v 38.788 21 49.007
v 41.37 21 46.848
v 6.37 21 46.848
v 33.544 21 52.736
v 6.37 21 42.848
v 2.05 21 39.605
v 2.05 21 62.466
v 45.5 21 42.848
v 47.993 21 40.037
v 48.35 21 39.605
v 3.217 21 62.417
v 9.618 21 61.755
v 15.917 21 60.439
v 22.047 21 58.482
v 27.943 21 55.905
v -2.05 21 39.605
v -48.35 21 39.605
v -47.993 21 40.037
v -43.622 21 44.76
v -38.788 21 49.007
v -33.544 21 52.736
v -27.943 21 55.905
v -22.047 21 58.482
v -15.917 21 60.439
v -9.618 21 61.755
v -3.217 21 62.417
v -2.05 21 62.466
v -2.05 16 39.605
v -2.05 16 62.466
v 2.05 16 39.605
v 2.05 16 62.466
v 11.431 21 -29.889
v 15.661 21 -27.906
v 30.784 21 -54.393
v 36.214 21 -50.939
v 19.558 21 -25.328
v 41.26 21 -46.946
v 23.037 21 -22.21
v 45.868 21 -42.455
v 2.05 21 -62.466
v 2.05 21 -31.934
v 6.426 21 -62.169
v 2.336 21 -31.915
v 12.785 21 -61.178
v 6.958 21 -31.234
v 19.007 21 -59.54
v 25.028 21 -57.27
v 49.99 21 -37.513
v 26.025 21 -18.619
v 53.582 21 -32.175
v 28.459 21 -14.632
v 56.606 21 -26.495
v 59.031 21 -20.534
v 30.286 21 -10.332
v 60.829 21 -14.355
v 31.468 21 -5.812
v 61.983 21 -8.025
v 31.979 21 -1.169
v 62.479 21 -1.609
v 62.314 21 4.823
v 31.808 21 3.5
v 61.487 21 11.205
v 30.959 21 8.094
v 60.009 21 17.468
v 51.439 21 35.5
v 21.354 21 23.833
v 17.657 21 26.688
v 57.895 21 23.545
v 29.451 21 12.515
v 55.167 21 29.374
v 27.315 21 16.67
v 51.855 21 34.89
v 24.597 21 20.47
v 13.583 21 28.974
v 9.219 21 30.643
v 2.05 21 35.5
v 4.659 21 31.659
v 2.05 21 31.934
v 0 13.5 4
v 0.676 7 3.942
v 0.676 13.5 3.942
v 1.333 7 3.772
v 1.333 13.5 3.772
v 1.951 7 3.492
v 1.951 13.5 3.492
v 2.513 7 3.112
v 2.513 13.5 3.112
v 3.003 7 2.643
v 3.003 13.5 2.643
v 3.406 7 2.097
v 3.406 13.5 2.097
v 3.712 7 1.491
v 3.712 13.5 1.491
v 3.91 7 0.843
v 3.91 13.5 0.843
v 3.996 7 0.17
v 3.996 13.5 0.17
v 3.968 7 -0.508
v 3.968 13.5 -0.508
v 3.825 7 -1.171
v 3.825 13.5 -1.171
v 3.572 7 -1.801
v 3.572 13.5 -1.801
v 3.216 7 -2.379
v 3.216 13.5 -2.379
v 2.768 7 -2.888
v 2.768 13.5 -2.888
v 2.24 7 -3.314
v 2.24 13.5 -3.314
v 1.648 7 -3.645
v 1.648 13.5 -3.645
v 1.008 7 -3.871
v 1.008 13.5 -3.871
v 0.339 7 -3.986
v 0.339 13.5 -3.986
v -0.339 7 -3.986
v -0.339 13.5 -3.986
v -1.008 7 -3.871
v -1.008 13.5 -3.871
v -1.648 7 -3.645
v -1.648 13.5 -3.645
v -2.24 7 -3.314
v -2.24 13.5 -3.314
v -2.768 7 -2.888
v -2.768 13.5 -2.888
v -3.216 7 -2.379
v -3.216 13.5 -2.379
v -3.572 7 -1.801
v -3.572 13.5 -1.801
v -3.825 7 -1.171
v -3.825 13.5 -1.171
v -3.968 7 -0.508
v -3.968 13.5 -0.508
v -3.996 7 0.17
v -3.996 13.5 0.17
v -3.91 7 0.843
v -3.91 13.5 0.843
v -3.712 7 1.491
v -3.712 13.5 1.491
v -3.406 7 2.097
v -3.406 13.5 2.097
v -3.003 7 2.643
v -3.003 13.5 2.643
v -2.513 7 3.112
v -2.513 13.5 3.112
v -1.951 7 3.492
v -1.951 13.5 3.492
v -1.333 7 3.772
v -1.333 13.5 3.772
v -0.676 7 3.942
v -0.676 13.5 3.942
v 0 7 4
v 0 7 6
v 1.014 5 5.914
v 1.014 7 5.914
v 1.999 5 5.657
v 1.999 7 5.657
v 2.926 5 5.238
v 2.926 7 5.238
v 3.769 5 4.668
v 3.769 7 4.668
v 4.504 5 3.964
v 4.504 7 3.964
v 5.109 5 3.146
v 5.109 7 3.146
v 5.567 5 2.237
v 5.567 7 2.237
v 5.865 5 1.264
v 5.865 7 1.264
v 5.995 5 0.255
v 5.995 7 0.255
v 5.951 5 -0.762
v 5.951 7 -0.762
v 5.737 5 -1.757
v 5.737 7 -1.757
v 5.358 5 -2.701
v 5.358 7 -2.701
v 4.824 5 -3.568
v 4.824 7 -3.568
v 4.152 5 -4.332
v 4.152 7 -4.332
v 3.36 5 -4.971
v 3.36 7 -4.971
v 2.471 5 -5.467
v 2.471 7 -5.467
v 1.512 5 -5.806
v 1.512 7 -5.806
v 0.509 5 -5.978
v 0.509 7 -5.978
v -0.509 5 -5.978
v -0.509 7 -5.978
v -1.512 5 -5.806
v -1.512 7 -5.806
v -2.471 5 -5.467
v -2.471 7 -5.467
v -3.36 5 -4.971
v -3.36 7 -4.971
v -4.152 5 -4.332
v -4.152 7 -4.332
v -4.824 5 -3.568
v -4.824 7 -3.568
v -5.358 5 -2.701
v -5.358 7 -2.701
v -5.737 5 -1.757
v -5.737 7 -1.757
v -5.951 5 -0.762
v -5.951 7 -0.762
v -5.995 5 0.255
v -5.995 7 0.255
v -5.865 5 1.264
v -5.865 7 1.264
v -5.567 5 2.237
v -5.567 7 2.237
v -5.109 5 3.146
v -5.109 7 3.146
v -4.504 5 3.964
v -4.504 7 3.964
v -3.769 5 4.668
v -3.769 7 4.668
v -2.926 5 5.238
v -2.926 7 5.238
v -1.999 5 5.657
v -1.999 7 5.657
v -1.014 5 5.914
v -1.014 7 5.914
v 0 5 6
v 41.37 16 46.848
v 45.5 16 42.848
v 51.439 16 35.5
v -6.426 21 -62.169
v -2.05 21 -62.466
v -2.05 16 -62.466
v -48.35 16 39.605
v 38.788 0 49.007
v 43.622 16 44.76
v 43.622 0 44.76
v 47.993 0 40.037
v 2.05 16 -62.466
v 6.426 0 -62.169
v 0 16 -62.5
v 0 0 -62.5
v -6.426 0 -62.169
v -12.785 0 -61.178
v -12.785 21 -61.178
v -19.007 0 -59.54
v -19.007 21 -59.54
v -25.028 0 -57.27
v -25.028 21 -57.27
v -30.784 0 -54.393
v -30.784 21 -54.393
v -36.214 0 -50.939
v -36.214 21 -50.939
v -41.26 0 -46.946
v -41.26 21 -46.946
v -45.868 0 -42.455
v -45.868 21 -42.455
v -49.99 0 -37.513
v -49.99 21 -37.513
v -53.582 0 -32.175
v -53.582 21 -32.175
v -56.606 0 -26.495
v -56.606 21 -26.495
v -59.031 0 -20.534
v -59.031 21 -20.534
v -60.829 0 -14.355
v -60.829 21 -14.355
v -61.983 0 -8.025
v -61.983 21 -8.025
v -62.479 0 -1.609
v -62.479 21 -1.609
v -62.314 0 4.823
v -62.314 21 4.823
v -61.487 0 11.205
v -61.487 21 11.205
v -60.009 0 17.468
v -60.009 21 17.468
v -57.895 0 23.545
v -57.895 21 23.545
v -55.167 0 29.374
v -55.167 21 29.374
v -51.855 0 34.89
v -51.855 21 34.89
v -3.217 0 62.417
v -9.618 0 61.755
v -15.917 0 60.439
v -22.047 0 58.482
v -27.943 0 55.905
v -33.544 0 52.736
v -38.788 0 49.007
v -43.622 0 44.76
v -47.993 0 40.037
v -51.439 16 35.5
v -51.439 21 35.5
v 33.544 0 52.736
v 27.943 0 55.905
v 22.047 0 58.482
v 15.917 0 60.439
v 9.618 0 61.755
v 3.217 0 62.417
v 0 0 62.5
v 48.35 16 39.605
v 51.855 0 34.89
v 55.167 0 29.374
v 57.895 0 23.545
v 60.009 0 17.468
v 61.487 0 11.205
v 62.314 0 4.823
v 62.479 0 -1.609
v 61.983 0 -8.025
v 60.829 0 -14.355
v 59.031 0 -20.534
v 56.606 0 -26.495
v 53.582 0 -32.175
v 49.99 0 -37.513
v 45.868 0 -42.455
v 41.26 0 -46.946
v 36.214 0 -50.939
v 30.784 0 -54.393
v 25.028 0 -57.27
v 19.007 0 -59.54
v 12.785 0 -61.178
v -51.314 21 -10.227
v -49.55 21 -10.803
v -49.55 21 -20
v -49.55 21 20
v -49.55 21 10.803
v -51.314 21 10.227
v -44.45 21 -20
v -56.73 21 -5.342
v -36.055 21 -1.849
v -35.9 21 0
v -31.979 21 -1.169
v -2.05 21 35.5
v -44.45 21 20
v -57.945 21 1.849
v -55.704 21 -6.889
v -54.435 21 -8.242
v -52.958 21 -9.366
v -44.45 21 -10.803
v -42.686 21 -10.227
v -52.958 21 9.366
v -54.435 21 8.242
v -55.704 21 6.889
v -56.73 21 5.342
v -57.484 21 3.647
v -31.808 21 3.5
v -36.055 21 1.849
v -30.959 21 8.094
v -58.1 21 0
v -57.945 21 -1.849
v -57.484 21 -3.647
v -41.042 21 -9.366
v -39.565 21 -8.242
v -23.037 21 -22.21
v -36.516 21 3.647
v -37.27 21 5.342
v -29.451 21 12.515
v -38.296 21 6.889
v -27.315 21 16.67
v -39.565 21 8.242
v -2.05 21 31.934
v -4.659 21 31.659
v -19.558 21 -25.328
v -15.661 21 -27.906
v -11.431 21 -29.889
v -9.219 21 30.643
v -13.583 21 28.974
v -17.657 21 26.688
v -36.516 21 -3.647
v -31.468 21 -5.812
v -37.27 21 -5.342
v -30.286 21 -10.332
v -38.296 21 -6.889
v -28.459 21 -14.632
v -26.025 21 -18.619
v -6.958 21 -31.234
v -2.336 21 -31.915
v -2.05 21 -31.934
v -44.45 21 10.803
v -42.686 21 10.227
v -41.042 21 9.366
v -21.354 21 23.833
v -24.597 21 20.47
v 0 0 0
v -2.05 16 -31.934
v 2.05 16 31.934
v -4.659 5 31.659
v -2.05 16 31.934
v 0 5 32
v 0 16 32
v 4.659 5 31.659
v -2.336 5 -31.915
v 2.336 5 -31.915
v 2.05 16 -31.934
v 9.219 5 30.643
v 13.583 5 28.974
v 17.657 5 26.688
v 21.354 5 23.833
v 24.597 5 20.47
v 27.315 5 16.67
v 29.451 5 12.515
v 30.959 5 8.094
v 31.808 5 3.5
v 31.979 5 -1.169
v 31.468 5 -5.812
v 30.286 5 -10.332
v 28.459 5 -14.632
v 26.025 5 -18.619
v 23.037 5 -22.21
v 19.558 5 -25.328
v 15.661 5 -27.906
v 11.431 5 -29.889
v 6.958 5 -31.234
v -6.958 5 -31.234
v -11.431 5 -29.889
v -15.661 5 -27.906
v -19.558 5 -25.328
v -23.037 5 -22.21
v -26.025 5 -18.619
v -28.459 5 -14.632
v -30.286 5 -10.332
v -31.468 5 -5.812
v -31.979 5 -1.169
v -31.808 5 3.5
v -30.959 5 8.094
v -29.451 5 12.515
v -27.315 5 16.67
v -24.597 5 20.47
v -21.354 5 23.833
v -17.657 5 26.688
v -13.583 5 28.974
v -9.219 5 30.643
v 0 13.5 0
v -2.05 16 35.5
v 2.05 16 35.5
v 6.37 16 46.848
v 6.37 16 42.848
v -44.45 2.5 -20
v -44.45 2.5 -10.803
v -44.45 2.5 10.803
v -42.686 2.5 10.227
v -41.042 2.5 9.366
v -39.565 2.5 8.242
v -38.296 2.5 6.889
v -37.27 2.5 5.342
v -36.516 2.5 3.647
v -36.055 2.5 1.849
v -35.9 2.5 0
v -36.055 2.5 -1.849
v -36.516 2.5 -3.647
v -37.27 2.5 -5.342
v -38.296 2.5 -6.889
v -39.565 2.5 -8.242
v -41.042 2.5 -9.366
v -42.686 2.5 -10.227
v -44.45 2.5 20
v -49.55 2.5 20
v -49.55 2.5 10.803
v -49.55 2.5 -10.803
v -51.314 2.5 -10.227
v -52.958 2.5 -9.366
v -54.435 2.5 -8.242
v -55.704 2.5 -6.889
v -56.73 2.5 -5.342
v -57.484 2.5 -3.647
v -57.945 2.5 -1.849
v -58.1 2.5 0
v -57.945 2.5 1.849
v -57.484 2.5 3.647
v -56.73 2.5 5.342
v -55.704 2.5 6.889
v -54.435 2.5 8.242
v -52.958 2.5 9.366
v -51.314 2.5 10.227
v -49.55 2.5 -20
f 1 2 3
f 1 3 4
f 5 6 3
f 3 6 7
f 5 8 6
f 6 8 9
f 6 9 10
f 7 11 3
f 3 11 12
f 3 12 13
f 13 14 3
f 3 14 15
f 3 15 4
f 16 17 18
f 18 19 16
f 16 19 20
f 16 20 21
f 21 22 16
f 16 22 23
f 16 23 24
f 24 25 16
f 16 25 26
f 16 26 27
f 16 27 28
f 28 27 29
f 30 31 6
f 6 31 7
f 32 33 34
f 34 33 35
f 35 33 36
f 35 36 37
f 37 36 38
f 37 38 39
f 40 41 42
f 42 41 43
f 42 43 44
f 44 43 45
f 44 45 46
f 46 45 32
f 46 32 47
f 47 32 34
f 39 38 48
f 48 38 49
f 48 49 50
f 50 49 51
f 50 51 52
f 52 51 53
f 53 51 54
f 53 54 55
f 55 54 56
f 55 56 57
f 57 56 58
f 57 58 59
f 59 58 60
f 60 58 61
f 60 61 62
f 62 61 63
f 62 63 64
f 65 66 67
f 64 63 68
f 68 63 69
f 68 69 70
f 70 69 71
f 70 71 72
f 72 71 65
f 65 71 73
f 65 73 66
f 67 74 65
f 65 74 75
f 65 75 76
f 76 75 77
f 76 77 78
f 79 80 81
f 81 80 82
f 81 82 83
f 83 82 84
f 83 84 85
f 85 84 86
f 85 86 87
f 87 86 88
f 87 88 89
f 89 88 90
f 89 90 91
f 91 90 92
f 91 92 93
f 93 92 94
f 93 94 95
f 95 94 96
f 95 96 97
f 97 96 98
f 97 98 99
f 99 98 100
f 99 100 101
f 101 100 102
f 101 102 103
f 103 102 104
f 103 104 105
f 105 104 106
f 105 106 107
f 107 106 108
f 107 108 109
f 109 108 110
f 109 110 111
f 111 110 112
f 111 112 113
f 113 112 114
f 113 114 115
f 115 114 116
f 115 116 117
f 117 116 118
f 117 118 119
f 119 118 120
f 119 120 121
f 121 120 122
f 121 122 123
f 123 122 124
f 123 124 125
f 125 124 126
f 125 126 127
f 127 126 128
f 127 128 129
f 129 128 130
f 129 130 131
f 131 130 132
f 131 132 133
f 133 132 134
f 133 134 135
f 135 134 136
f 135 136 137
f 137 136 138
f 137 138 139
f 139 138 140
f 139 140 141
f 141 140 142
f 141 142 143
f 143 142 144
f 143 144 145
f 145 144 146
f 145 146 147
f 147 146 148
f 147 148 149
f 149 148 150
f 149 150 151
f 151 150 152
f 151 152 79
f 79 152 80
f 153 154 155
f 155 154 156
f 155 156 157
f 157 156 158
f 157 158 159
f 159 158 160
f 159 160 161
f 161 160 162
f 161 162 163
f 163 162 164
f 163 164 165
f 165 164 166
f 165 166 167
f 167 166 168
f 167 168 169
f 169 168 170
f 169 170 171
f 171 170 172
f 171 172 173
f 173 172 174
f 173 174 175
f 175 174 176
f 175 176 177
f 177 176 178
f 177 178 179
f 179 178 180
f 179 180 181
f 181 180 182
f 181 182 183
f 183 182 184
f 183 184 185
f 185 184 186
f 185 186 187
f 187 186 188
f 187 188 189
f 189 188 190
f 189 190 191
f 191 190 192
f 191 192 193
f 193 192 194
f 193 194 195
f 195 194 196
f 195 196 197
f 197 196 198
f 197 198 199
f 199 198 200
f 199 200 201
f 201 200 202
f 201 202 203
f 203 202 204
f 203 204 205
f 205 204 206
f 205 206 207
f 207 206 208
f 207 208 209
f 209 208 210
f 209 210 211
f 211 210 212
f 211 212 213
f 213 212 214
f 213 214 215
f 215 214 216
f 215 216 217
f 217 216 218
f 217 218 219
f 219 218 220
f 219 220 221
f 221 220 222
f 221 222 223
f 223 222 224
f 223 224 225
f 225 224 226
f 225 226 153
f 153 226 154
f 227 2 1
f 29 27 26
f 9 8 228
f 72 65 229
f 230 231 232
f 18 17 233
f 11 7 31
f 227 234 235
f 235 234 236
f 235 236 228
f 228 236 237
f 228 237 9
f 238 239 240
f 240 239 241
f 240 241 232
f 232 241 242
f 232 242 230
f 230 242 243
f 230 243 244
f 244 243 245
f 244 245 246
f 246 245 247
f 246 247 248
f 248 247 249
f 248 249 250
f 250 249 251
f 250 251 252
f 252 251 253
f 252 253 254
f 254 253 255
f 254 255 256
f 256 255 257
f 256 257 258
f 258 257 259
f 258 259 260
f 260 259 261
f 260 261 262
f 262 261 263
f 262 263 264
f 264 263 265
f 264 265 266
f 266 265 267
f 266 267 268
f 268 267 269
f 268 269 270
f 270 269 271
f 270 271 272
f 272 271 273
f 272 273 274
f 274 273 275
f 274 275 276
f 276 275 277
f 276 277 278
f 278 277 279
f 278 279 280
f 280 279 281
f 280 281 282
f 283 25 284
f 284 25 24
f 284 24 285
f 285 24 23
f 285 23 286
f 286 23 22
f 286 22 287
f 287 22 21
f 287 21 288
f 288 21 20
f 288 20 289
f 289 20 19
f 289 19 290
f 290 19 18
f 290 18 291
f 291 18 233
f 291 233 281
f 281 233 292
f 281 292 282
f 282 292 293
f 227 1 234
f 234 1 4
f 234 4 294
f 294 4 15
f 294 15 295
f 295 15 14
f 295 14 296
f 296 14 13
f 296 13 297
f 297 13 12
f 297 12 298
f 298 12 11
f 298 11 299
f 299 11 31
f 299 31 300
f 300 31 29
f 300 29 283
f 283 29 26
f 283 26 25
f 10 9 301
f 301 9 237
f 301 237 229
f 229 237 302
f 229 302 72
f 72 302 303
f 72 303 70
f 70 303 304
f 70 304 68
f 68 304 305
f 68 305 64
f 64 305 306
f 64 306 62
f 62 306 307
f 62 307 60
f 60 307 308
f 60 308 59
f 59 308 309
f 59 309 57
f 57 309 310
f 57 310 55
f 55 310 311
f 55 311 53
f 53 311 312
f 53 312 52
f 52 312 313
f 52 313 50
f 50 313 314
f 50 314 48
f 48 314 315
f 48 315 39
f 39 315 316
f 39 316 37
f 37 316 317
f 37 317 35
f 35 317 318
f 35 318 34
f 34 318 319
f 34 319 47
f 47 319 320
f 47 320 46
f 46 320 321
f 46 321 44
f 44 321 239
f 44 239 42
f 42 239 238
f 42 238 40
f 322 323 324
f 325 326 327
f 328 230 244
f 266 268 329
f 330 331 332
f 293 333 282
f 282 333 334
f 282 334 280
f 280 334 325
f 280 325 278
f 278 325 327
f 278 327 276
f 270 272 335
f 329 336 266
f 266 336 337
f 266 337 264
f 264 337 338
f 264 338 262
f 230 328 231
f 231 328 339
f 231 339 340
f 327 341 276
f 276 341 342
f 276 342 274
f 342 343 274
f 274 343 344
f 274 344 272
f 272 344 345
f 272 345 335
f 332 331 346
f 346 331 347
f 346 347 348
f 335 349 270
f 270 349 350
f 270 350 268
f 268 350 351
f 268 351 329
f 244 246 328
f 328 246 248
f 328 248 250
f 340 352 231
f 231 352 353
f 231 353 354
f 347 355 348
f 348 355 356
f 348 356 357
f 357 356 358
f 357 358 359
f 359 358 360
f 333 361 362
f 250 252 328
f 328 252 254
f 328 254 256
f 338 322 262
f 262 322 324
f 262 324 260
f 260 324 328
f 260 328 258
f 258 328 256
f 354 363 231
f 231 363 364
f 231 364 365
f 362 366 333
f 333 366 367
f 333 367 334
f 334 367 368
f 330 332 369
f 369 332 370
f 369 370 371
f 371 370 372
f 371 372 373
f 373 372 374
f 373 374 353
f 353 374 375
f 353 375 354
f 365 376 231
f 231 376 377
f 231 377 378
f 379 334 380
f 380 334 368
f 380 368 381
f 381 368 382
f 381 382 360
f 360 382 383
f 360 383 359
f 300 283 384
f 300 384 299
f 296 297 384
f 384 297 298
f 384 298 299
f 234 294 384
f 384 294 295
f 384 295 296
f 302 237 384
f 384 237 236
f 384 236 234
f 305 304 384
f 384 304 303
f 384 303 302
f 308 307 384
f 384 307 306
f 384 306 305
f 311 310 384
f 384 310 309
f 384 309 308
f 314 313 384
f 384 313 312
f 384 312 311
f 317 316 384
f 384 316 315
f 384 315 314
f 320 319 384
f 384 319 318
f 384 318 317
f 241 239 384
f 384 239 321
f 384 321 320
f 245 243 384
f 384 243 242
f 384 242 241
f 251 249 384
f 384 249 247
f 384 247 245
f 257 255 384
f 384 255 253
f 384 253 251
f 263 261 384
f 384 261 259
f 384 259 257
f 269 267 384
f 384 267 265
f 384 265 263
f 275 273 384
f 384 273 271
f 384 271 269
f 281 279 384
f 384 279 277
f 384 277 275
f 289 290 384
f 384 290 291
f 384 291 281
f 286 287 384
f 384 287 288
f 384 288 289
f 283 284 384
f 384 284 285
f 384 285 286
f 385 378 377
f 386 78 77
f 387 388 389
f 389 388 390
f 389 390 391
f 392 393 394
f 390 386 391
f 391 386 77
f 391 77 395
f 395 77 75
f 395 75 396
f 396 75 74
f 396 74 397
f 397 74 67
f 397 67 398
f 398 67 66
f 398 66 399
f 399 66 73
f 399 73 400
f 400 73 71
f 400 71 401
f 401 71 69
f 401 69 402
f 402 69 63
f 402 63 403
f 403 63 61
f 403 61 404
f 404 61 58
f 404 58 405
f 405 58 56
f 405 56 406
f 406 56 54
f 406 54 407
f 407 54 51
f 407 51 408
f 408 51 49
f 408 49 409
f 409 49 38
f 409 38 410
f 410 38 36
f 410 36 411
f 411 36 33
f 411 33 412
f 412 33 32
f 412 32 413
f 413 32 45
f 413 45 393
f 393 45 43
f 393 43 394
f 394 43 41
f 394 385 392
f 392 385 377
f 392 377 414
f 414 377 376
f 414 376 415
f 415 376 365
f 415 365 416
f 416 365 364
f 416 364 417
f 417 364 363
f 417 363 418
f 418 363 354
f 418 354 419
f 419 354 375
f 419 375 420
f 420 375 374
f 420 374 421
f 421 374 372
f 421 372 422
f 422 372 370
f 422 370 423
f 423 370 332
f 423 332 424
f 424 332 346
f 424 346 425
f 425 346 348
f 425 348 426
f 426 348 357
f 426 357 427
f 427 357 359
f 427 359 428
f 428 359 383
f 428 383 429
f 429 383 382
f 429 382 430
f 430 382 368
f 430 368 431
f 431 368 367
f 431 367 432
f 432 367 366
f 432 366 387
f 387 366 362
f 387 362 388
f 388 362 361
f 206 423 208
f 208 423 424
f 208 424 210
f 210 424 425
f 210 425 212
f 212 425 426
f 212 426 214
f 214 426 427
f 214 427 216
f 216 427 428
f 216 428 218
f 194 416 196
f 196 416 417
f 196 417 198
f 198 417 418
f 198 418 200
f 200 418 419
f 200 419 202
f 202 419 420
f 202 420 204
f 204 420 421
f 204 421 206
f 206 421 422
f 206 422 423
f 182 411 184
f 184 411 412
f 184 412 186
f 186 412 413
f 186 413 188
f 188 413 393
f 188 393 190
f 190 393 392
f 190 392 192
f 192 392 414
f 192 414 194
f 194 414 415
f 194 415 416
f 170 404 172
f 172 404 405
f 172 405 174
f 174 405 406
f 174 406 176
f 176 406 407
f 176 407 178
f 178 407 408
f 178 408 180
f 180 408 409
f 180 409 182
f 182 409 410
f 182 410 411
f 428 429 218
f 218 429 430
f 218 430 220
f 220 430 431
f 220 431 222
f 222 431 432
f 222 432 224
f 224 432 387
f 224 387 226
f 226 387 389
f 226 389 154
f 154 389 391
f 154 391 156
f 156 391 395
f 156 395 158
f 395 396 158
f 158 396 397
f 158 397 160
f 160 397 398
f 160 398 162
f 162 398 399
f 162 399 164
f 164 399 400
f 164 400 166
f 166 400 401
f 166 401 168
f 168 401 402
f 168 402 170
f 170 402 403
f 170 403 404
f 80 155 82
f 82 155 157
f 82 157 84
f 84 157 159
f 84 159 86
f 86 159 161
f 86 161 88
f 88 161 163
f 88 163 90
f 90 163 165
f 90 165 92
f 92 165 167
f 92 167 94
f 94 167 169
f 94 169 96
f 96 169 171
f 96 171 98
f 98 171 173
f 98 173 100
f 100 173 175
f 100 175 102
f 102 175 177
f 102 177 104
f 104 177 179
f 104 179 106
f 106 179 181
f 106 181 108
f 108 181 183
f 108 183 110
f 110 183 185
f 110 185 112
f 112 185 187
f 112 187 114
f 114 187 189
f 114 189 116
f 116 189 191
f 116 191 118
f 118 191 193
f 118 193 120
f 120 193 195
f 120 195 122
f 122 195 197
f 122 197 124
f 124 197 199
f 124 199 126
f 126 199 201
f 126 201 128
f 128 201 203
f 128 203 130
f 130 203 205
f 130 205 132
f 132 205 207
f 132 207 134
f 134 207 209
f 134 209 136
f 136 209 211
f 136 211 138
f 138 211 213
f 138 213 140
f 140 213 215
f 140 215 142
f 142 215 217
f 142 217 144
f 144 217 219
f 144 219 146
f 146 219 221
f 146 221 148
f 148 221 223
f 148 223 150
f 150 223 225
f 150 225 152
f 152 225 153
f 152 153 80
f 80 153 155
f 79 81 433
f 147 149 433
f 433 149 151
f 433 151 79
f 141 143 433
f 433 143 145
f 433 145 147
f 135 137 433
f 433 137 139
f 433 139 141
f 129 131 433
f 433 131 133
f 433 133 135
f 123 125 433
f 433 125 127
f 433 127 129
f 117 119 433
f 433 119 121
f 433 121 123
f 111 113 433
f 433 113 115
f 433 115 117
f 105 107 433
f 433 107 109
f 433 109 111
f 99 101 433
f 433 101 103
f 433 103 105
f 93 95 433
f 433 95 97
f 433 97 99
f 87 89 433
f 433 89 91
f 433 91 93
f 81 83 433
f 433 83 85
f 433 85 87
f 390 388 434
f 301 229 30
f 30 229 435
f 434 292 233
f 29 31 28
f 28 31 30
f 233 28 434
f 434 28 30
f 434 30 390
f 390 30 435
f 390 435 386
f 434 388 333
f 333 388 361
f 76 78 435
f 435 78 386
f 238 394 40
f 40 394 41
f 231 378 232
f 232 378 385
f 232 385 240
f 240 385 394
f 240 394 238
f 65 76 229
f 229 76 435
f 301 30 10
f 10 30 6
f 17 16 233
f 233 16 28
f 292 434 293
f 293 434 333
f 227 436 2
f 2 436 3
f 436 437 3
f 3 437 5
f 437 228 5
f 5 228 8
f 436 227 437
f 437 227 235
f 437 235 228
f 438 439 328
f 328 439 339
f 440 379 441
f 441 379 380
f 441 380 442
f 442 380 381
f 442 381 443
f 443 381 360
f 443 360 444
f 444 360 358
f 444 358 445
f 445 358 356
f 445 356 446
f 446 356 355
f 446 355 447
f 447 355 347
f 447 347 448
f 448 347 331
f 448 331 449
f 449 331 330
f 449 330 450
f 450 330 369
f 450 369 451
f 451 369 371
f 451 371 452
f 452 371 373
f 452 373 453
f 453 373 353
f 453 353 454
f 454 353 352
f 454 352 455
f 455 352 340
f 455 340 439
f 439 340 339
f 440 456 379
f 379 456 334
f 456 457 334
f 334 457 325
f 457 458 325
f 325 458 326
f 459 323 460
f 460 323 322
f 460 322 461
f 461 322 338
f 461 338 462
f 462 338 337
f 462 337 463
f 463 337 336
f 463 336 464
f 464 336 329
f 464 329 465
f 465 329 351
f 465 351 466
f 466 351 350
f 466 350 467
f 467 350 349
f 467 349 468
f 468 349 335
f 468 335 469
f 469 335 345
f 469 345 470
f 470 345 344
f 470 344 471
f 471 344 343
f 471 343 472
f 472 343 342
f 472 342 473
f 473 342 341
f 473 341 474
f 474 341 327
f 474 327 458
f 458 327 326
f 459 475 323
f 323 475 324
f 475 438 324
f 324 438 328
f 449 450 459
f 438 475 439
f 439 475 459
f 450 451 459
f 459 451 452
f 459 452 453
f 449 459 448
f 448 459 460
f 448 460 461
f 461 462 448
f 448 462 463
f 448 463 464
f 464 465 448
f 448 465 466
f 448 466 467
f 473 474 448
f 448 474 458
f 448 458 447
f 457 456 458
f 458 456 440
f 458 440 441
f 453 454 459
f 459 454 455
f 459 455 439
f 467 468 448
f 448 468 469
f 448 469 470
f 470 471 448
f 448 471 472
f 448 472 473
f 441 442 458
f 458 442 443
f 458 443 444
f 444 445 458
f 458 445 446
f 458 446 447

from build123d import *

# Parameters (mm, degrees)
SKETCH1_R           = 62.5
BOSS_EXTRUDE1_DEPTH = 21
SKETCH2_R           = 32
SKETCH2_R_2         = 6
CUT_EXTRUDE1_DEPTH  = 16
SKETCH3_R           = 6
SKETCH3_R_2         = 4
CUT_EXTRUDE2_DEPTH  = 14
SKETCH4_R           = 4
CUT_EXTRUDE3_DEPTH  = 7.5
CUT_EXTRUDE4_START  = -5
CUT_EXTRUDE4_DEPTH  = 5
CUT_EXTRUDE5_START  = -5
CUT_EXTRUDE5_DEPTH  = 5
CUT_EXTRUDE6_START  = -5
CUT_EXTRUDE6_DEPTH  = 5
CUT_EXTRUDE7_DEPTH  = 18.5


with BuildPart() as part:
    # Sketch1 → Boss-Extrude1 (new body)
    with BuildSketch(Plane(origin=(0, 0, 0), x_dir=(1, 0, 0), z_dir=(0, 1, 0))):
        Circle(SKETCH1_R)
    extrude(amount=BOSS_EXTRUDE1_DEPTH)

    # Sketch2 → Cut-Extrude1 (cut)
    with BuildSketch(Plane(origin=(0, 21, 0), x_dir=(1, 0, 0), z_dir=(0, 1, 0))):
        Circle(SKETCH2_R)
        Circle(SKETCH2_R_2, mode=Mode.SUBTRACT)
    extrude(amount=-CUT_EXTRUDE1_DEPTH, mode=Mode.SUBTRACT)

    # Sketch3 → Cut-Extrude2 (cut)
    with BuildSketch(Plane(origin=(0, 21, 0), x_dir=(1, 0, 0), z_dir=(0, 1, 0))):
        Circle(SKETCH3_R)
        Circle(SKETCH3_R_2, mode=Mode.SUBTRACT)
    extrude(amount=-CUT_EXTRUDE2_DEPTH, mode=Mode.SUBTRACT)

    # Sketch4 → Cut-Extrude3 (cut)
    with BuildSketch(Plane(origin=(0, 21, 0), x_dir=(1, 0, 0), z_dir=(0, 1, 0))):
        Circle(SKETCH4_R)
    extrude(amount=-CUT_EXTRUDE3_DEPTH, mode=Mode.SUBTRACT)

    # Sketch5 → Cut-Extrude4 (cut)
    with BuildSketch(Plane(origin=(0, 21, 0), x_dir=(1, 0, 0), z_dir=(0, 1, 0)).offset(CUT_EXTRUDE4_START)):
        with BuildLine():
            Line((2.05, 62.466370953), (2.05, -62.466370953))
            ThreePointArc((2.05, -62.466370953), (0, -62.5), (-2.05, -62.466370953))
            Line((-2.05, -62.466370953), (-2.05, 62.466370953))
            ThreePointArc((-2.05, 62.466370953), (0, 62.5), (2.05, 62.466370953))
        make_face()
    extrude(amount=CUT_EXTRUDE4_DEPTH, mode=Mode.SUBTRACT)

    # Sketch6 → Cut-Extrude5 (cut)
    with BuildSketch(Plane(origin=(0, 21, 0), x_dir=(1, 0, 0), z_dir=(0, 1, 0)).offset(CUT_EXTRUDE5_START)):
        with BuildLine():
            Line((-48.35, -39.60463988), (48.35, -39.60463988))
            ThreePointArc((48.35, -39.60463988), (49.936833573, -37.584074456), (51.439284598, -35.5))
            Line((51.439284598, -35.5), (-51.439284598, -35.5))
            ThreePointArc((-51.439284598, -35.5), (-49.936833573, -37.584074456), (-48.35, -39.60463988))
        make_face()
    extrude(amount=CUT_EXTRUDE5_DEPTH, mode=Mode.SUBTRACT)

    # Sketch9 → Cut-Extrude6 (cut)
    with BuildSketch(Plane(origin=(0, 21, 0), x_dir=(1, 0, 0), z_dir=(0, 1, 0)).offset(CUT_EXTRUDE6_START)):
        with BuildLine():
            Line((45.500273824, -42.848279801), (6.37014237, -42.848279801))
            Line((6.37014237, -42.848279801), (6.37014237, -46.848279801))
            Line((6.37014237, -46.848279801), (41.37014237, -46.848279801))
            ThreePointArc((41.37014237, -46.848279801), (43.481229311, -44.895798217), (45.500273824, -42.848279801))
        make_face()
    extrude(amount=CUT_EXTRUDE6_DEPTH, mode=Mode.SUBTRACT)

    # Sketch10 → Cut-Extrude7 (cut)
    with BuildSketch(Plane(origin=(0, 21, 0), x_dir=(1, 0, 0), z_dir=(0, 1, 0))):
        with BuildLine():
            Line((-49.55, 10.803124548), (-49.55, 20))
            Line((-49.55, 20), (-44.45, 20))
            Line((-44.45, 20), (-44.45, 10.803124548))
            ThreePointArc((-44.45, 10.803124548), (-35.9, 0), (-44.45, -10.803124548))
            Line((-44.45, -10.803124548), (-44.45, -20))
            Line((-44.45, -20), (-49.55, -20))
            Line((-49.55, -20), (-49.55, -10.803124548))
            ThreePointArc((-49.55, -10.803124548), (-58.1, 0), (-49.55, 10.803124548))
        make_face()
    extrude(amount=-CUT_EXTRUDE7_DEPTH, mode=Mode.SUBTRACT)


solid = part.part
